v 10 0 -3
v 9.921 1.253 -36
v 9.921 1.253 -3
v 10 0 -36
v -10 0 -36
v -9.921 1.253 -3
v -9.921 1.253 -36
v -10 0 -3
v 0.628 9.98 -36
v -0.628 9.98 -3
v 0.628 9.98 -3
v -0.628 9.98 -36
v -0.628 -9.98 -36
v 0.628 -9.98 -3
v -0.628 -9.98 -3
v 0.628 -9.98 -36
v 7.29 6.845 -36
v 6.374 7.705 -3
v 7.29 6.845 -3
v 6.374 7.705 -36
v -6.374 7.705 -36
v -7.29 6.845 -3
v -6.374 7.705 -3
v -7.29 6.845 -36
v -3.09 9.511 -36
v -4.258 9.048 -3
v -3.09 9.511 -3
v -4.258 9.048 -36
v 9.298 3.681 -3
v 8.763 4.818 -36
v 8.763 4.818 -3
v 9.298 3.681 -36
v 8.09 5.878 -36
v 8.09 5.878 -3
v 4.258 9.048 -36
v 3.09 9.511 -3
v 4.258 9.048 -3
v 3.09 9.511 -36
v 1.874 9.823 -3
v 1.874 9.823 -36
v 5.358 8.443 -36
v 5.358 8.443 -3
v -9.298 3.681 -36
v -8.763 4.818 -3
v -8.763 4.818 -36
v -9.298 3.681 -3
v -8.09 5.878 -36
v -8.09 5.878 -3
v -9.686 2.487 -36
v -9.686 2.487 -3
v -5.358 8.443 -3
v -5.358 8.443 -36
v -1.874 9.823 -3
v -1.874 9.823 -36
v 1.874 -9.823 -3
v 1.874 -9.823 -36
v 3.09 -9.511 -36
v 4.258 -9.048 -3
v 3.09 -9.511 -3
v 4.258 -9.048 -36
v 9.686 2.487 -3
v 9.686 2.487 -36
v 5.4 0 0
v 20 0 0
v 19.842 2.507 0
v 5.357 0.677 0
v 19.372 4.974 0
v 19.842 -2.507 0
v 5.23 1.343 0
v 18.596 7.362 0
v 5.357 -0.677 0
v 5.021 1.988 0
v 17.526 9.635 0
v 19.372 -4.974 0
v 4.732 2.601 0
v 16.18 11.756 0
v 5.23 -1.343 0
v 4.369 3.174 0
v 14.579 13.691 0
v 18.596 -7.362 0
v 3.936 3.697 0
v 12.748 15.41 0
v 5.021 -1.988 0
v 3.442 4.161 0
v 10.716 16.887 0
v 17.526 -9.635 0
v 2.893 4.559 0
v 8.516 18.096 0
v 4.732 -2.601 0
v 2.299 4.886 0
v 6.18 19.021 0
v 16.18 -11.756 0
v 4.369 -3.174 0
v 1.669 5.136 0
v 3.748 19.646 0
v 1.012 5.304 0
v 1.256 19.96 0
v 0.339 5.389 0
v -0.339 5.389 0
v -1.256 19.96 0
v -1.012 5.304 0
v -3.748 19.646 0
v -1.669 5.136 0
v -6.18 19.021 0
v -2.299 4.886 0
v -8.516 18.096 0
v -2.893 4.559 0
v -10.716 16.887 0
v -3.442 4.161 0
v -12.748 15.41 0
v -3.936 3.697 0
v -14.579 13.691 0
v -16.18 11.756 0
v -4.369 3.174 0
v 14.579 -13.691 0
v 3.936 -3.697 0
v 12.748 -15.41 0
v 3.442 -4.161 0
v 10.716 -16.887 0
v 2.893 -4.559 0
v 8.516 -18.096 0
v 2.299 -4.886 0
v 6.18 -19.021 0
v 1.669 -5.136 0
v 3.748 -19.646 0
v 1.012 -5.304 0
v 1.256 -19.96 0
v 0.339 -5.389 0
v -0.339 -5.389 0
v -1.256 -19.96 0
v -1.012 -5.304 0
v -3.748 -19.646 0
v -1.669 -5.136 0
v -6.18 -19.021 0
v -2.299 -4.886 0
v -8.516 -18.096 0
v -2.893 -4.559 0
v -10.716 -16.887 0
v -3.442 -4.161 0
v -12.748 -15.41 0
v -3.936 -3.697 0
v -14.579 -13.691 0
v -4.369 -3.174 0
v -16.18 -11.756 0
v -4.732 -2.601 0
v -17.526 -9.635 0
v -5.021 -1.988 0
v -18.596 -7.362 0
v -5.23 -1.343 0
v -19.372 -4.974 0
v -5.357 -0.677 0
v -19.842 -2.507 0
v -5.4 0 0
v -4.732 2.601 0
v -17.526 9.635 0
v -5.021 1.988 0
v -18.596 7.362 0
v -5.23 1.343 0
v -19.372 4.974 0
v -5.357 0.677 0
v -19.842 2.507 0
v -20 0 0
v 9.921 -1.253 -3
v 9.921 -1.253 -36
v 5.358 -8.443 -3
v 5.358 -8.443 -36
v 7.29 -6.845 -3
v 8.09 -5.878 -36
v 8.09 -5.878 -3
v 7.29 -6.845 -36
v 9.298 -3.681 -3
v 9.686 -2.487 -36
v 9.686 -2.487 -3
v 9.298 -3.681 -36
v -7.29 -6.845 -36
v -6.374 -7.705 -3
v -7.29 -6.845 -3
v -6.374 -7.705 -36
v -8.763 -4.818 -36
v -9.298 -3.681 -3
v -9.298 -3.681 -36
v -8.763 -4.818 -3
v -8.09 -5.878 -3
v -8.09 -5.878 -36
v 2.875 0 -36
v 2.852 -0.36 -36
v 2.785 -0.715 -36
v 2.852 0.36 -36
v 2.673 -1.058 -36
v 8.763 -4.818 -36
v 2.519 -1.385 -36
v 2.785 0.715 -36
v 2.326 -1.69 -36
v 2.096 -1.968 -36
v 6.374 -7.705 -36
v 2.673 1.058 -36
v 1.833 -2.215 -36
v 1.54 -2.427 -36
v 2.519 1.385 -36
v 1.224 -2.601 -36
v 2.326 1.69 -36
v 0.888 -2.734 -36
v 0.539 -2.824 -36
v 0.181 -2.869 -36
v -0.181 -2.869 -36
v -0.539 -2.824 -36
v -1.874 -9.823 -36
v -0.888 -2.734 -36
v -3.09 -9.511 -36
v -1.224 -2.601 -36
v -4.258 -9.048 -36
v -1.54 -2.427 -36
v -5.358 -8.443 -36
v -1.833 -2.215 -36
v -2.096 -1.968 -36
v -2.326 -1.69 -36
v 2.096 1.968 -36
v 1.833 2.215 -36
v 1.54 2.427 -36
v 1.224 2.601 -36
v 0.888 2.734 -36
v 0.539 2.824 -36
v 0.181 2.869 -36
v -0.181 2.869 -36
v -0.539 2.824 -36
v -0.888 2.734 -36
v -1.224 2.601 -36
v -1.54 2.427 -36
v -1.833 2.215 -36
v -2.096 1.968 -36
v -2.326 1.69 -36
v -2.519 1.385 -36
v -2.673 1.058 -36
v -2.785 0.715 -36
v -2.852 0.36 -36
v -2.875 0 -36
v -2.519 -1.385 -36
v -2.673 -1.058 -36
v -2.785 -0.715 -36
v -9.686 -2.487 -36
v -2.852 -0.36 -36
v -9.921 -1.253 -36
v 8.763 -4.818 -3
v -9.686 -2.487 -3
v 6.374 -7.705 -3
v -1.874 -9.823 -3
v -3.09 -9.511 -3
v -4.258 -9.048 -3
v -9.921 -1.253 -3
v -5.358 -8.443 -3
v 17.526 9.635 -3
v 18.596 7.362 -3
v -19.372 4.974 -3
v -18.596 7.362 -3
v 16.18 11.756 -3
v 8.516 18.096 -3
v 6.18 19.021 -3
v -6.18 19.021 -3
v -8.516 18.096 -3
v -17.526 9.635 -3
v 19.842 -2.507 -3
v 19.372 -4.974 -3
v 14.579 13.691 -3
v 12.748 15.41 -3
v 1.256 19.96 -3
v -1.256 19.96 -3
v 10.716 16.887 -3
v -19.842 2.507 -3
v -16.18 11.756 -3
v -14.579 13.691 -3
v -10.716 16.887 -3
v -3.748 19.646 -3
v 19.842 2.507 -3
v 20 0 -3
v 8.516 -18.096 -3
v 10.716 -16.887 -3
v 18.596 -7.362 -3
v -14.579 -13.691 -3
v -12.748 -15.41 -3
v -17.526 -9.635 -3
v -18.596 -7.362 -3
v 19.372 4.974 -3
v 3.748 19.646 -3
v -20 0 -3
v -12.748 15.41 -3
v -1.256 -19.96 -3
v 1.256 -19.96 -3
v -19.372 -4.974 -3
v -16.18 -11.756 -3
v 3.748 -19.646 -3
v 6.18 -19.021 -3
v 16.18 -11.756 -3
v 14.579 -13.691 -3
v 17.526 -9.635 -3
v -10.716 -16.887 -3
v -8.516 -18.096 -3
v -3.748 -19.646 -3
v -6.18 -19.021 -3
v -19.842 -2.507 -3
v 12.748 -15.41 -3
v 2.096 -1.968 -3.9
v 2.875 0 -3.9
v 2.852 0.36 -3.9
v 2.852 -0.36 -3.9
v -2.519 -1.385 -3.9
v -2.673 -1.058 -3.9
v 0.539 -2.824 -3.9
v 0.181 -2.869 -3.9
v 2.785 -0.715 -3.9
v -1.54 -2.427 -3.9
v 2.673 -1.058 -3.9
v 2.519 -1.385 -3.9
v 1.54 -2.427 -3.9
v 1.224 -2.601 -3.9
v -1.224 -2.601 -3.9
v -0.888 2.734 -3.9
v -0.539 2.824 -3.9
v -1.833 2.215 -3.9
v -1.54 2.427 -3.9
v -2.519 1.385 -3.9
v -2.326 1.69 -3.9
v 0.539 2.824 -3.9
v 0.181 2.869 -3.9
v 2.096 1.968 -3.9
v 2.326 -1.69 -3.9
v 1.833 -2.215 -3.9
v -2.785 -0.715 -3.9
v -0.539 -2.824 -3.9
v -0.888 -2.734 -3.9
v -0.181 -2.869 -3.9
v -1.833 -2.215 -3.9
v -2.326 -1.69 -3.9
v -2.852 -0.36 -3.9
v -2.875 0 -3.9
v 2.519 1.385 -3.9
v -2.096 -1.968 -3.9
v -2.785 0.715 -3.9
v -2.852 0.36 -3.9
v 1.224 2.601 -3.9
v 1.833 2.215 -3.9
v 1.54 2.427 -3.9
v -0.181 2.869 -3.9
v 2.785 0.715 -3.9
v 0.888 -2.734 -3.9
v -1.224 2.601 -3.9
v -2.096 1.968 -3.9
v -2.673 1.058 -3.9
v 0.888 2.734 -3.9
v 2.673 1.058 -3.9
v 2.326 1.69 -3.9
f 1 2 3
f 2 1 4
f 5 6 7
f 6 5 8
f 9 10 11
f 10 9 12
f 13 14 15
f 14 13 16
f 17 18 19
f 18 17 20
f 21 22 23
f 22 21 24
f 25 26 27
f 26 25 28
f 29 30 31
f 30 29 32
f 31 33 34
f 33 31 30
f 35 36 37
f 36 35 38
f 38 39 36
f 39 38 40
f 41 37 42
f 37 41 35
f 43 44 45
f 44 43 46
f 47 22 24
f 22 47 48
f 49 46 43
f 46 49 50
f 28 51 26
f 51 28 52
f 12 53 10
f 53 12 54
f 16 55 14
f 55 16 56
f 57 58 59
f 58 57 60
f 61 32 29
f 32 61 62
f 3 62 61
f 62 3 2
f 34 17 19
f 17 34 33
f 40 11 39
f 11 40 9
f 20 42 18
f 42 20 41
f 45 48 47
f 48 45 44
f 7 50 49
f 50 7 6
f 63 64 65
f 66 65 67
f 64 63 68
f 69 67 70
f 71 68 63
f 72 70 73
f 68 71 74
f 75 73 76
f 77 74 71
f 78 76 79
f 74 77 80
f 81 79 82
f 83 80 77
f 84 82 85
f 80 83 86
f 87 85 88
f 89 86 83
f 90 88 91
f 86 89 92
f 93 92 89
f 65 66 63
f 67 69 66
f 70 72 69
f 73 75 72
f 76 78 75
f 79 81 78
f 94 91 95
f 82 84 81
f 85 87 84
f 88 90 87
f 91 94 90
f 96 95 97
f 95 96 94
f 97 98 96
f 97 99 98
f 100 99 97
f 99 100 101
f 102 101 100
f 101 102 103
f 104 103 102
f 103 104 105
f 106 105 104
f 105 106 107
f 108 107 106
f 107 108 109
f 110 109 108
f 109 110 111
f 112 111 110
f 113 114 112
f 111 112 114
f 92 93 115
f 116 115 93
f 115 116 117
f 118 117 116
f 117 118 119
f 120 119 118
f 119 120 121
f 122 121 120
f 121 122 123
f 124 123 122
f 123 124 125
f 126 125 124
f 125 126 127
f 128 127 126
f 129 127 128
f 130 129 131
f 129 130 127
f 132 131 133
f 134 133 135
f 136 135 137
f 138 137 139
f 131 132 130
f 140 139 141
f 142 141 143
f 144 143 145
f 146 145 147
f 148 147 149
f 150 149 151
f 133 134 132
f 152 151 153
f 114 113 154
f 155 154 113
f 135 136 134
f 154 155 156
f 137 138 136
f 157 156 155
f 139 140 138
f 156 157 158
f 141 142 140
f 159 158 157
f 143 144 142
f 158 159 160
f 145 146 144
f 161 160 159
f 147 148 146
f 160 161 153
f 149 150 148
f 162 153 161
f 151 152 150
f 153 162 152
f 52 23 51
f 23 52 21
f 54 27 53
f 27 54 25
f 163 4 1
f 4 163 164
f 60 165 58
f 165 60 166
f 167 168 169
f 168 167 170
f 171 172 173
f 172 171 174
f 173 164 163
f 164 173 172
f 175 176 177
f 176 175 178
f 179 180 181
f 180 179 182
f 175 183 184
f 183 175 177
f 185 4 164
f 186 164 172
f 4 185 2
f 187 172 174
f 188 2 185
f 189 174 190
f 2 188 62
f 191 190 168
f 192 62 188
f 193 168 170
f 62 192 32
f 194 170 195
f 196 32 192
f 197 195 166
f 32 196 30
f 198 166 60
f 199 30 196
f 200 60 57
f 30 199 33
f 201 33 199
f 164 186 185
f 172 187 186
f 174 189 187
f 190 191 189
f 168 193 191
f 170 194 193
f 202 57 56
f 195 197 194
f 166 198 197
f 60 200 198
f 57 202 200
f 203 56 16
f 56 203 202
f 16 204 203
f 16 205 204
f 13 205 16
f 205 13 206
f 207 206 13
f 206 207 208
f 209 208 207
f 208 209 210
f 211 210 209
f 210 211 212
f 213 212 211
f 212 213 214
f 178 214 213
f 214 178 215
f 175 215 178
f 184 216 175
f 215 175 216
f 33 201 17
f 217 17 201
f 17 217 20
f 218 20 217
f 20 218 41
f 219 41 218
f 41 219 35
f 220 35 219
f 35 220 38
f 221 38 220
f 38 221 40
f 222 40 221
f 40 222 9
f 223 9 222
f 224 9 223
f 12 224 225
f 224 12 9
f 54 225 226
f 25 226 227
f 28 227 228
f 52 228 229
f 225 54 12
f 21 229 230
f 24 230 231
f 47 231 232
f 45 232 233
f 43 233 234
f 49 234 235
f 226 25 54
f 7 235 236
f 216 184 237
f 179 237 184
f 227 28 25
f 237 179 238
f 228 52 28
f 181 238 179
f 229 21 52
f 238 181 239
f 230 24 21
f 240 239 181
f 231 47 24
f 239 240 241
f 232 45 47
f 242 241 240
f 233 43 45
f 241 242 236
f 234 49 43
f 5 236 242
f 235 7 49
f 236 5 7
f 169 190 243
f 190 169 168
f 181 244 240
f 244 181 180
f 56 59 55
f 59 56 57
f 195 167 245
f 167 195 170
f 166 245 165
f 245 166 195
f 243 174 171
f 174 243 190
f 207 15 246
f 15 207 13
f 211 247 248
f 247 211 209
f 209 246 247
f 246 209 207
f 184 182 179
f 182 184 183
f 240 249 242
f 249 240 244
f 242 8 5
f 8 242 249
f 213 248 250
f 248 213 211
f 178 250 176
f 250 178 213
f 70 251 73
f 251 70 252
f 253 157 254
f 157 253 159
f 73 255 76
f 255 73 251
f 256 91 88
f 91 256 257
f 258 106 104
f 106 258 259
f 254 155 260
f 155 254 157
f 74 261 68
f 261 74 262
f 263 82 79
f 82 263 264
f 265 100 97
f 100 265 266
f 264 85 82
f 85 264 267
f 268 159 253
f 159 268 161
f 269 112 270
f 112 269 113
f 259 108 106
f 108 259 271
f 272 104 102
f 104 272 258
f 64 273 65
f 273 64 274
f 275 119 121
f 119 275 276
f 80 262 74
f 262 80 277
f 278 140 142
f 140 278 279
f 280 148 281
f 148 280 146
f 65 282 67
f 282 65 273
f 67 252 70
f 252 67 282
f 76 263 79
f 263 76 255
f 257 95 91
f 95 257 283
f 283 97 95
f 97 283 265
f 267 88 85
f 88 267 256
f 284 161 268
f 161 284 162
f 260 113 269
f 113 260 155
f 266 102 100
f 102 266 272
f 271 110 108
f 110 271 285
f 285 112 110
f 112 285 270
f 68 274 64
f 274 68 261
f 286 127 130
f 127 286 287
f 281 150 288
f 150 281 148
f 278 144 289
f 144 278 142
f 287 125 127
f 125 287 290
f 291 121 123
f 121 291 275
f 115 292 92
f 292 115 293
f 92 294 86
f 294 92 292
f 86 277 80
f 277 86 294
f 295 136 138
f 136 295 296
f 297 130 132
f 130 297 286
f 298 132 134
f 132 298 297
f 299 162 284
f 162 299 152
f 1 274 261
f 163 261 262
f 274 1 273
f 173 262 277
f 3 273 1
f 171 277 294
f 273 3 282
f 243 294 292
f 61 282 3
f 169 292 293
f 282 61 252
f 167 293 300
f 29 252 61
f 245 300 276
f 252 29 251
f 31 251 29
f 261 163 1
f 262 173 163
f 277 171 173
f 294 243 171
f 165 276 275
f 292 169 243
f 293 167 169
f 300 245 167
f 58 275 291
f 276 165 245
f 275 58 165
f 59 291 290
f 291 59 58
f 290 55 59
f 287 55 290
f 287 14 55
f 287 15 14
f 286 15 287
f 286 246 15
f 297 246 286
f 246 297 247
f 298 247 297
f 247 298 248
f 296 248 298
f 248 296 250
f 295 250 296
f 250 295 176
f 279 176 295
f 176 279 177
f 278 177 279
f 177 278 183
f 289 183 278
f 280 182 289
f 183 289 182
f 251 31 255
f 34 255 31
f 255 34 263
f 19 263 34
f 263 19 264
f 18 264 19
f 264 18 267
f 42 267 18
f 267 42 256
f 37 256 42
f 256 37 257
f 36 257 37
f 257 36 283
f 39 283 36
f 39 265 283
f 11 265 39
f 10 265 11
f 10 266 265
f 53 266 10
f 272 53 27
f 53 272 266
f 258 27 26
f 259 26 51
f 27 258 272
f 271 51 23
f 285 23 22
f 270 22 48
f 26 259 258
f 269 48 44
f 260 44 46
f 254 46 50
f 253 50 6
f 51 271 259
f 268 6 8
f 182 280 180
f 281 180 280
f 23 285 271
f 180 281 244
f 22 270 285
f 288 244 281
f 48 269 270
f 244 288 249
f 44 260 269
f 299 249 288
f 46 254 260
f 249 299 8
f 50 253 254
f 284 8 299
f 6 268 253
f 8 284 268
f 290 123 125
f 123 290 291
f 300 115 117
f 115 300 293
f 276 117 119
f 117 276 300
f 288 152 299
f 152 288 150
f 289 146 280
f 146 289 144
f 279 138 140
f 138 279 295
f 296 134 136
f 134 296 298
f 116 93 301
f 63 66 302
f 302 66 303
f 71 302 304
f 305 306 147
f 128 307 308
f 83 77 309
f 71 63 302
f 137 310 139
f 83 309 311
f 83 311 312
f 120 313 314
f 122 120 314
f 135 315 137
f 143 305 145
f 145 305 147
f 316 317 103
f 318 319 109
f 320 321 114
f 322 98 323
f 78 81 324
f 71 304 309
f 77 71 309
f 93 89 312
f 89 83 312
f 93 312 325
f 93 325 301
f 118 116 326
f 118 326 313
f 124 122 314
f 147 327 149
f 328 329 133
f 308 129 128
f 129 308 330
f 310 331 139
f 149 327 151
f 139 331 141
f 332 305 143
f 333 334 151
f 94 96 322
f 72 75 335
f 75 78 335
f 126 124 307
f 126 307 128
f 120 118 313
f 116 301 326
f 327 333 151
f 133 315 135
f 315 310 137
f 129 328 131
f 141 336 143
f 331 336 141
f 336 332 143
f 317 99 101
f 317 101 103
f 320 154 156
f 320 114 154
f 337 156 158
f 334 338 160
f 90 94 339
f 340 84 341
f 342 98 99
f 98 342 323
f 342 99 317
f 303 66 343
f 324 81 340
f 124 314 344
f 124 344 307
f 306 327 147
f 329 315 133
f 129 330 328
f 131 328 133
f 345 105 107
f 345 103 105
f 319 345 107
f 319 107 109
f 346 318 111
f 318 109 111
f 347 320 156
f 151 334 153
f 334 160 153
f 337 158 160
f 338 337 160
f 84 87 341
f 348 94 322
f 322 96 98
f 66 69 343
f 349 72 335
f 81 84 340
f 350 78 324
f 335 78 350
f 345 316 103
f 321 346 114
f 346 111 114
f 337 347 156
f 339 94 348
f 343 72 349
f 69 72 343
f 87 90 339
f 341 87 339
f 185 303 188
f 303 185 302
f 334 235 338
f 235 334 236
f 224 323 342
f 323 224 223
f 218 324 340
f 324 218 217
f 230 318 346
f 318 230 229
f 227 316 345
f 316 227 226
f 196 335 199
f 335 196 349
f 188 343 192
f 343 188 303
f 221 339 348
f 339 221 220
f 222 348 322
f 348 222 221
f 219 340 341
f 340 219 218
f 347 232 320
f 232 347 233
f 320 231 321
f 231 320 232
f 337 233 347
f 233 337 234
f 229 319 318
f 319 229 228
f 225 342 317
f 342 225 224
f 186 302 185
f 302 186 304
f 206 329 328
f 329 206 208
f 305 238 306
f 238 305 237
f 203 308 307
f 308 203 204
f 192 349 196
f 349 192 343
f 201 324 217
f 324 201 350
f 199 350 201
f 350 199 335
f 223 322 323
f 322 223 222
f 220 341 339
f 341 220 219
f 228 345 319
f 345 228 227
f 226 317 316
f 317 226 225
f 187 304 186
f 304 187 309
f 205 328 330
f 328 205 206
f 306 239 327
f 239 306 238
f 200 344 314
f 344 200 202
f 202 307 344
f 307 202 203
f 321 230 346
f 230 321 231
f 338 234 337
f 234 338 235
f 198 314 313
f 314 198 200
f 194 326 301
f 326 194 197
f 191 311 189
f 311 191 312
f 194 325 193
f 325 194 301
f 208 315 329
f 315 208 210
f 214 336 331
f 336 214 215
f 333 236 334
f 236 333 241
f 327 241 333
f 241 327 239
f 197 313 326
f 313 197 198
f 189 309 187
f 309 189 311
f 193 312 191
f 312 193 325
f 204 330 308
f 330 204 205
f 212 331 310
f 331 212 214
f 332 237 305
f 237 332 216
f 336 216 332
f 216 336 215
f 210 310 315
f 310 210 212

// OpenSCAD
$fn = 50;


difference() {
	union() {
		translate(v = [0, 0, -36.0000000000]) {
			cylinder(h = 36, r = 10.0000000000);
		}
		translate(v = [0, 0, -3.0000000000]) {
			cylinder(h = 3, r = 20.0000000000);
		}
	}
	union() {
		translate(v = [0, 0, 0]) {
			rotate(a = [0, 0, 0]) {
				difference() {
					union() {
						#translate(v = [0, 0, -36.0000000000]) {
							cylinder(h = 36, r = 2.6000000000);
						}
						#translate(v = [0, 0, -3.9000000000]) {
							cylinder(h = 3.9000000000, r1 = 2.8750000000, r2 = 5.4000000000);
						}
						#translate(v = [0, 0, -36.0000000000]) {
							cylinder(h = 36, r = 2.8750000000);
						}
						#translate(v = [0, 0, -36.0000000000]) {
							cylinder(h = 36, r = 2.6000000000);
						}
					}
					union();
				}
			}
		}
	}
}
